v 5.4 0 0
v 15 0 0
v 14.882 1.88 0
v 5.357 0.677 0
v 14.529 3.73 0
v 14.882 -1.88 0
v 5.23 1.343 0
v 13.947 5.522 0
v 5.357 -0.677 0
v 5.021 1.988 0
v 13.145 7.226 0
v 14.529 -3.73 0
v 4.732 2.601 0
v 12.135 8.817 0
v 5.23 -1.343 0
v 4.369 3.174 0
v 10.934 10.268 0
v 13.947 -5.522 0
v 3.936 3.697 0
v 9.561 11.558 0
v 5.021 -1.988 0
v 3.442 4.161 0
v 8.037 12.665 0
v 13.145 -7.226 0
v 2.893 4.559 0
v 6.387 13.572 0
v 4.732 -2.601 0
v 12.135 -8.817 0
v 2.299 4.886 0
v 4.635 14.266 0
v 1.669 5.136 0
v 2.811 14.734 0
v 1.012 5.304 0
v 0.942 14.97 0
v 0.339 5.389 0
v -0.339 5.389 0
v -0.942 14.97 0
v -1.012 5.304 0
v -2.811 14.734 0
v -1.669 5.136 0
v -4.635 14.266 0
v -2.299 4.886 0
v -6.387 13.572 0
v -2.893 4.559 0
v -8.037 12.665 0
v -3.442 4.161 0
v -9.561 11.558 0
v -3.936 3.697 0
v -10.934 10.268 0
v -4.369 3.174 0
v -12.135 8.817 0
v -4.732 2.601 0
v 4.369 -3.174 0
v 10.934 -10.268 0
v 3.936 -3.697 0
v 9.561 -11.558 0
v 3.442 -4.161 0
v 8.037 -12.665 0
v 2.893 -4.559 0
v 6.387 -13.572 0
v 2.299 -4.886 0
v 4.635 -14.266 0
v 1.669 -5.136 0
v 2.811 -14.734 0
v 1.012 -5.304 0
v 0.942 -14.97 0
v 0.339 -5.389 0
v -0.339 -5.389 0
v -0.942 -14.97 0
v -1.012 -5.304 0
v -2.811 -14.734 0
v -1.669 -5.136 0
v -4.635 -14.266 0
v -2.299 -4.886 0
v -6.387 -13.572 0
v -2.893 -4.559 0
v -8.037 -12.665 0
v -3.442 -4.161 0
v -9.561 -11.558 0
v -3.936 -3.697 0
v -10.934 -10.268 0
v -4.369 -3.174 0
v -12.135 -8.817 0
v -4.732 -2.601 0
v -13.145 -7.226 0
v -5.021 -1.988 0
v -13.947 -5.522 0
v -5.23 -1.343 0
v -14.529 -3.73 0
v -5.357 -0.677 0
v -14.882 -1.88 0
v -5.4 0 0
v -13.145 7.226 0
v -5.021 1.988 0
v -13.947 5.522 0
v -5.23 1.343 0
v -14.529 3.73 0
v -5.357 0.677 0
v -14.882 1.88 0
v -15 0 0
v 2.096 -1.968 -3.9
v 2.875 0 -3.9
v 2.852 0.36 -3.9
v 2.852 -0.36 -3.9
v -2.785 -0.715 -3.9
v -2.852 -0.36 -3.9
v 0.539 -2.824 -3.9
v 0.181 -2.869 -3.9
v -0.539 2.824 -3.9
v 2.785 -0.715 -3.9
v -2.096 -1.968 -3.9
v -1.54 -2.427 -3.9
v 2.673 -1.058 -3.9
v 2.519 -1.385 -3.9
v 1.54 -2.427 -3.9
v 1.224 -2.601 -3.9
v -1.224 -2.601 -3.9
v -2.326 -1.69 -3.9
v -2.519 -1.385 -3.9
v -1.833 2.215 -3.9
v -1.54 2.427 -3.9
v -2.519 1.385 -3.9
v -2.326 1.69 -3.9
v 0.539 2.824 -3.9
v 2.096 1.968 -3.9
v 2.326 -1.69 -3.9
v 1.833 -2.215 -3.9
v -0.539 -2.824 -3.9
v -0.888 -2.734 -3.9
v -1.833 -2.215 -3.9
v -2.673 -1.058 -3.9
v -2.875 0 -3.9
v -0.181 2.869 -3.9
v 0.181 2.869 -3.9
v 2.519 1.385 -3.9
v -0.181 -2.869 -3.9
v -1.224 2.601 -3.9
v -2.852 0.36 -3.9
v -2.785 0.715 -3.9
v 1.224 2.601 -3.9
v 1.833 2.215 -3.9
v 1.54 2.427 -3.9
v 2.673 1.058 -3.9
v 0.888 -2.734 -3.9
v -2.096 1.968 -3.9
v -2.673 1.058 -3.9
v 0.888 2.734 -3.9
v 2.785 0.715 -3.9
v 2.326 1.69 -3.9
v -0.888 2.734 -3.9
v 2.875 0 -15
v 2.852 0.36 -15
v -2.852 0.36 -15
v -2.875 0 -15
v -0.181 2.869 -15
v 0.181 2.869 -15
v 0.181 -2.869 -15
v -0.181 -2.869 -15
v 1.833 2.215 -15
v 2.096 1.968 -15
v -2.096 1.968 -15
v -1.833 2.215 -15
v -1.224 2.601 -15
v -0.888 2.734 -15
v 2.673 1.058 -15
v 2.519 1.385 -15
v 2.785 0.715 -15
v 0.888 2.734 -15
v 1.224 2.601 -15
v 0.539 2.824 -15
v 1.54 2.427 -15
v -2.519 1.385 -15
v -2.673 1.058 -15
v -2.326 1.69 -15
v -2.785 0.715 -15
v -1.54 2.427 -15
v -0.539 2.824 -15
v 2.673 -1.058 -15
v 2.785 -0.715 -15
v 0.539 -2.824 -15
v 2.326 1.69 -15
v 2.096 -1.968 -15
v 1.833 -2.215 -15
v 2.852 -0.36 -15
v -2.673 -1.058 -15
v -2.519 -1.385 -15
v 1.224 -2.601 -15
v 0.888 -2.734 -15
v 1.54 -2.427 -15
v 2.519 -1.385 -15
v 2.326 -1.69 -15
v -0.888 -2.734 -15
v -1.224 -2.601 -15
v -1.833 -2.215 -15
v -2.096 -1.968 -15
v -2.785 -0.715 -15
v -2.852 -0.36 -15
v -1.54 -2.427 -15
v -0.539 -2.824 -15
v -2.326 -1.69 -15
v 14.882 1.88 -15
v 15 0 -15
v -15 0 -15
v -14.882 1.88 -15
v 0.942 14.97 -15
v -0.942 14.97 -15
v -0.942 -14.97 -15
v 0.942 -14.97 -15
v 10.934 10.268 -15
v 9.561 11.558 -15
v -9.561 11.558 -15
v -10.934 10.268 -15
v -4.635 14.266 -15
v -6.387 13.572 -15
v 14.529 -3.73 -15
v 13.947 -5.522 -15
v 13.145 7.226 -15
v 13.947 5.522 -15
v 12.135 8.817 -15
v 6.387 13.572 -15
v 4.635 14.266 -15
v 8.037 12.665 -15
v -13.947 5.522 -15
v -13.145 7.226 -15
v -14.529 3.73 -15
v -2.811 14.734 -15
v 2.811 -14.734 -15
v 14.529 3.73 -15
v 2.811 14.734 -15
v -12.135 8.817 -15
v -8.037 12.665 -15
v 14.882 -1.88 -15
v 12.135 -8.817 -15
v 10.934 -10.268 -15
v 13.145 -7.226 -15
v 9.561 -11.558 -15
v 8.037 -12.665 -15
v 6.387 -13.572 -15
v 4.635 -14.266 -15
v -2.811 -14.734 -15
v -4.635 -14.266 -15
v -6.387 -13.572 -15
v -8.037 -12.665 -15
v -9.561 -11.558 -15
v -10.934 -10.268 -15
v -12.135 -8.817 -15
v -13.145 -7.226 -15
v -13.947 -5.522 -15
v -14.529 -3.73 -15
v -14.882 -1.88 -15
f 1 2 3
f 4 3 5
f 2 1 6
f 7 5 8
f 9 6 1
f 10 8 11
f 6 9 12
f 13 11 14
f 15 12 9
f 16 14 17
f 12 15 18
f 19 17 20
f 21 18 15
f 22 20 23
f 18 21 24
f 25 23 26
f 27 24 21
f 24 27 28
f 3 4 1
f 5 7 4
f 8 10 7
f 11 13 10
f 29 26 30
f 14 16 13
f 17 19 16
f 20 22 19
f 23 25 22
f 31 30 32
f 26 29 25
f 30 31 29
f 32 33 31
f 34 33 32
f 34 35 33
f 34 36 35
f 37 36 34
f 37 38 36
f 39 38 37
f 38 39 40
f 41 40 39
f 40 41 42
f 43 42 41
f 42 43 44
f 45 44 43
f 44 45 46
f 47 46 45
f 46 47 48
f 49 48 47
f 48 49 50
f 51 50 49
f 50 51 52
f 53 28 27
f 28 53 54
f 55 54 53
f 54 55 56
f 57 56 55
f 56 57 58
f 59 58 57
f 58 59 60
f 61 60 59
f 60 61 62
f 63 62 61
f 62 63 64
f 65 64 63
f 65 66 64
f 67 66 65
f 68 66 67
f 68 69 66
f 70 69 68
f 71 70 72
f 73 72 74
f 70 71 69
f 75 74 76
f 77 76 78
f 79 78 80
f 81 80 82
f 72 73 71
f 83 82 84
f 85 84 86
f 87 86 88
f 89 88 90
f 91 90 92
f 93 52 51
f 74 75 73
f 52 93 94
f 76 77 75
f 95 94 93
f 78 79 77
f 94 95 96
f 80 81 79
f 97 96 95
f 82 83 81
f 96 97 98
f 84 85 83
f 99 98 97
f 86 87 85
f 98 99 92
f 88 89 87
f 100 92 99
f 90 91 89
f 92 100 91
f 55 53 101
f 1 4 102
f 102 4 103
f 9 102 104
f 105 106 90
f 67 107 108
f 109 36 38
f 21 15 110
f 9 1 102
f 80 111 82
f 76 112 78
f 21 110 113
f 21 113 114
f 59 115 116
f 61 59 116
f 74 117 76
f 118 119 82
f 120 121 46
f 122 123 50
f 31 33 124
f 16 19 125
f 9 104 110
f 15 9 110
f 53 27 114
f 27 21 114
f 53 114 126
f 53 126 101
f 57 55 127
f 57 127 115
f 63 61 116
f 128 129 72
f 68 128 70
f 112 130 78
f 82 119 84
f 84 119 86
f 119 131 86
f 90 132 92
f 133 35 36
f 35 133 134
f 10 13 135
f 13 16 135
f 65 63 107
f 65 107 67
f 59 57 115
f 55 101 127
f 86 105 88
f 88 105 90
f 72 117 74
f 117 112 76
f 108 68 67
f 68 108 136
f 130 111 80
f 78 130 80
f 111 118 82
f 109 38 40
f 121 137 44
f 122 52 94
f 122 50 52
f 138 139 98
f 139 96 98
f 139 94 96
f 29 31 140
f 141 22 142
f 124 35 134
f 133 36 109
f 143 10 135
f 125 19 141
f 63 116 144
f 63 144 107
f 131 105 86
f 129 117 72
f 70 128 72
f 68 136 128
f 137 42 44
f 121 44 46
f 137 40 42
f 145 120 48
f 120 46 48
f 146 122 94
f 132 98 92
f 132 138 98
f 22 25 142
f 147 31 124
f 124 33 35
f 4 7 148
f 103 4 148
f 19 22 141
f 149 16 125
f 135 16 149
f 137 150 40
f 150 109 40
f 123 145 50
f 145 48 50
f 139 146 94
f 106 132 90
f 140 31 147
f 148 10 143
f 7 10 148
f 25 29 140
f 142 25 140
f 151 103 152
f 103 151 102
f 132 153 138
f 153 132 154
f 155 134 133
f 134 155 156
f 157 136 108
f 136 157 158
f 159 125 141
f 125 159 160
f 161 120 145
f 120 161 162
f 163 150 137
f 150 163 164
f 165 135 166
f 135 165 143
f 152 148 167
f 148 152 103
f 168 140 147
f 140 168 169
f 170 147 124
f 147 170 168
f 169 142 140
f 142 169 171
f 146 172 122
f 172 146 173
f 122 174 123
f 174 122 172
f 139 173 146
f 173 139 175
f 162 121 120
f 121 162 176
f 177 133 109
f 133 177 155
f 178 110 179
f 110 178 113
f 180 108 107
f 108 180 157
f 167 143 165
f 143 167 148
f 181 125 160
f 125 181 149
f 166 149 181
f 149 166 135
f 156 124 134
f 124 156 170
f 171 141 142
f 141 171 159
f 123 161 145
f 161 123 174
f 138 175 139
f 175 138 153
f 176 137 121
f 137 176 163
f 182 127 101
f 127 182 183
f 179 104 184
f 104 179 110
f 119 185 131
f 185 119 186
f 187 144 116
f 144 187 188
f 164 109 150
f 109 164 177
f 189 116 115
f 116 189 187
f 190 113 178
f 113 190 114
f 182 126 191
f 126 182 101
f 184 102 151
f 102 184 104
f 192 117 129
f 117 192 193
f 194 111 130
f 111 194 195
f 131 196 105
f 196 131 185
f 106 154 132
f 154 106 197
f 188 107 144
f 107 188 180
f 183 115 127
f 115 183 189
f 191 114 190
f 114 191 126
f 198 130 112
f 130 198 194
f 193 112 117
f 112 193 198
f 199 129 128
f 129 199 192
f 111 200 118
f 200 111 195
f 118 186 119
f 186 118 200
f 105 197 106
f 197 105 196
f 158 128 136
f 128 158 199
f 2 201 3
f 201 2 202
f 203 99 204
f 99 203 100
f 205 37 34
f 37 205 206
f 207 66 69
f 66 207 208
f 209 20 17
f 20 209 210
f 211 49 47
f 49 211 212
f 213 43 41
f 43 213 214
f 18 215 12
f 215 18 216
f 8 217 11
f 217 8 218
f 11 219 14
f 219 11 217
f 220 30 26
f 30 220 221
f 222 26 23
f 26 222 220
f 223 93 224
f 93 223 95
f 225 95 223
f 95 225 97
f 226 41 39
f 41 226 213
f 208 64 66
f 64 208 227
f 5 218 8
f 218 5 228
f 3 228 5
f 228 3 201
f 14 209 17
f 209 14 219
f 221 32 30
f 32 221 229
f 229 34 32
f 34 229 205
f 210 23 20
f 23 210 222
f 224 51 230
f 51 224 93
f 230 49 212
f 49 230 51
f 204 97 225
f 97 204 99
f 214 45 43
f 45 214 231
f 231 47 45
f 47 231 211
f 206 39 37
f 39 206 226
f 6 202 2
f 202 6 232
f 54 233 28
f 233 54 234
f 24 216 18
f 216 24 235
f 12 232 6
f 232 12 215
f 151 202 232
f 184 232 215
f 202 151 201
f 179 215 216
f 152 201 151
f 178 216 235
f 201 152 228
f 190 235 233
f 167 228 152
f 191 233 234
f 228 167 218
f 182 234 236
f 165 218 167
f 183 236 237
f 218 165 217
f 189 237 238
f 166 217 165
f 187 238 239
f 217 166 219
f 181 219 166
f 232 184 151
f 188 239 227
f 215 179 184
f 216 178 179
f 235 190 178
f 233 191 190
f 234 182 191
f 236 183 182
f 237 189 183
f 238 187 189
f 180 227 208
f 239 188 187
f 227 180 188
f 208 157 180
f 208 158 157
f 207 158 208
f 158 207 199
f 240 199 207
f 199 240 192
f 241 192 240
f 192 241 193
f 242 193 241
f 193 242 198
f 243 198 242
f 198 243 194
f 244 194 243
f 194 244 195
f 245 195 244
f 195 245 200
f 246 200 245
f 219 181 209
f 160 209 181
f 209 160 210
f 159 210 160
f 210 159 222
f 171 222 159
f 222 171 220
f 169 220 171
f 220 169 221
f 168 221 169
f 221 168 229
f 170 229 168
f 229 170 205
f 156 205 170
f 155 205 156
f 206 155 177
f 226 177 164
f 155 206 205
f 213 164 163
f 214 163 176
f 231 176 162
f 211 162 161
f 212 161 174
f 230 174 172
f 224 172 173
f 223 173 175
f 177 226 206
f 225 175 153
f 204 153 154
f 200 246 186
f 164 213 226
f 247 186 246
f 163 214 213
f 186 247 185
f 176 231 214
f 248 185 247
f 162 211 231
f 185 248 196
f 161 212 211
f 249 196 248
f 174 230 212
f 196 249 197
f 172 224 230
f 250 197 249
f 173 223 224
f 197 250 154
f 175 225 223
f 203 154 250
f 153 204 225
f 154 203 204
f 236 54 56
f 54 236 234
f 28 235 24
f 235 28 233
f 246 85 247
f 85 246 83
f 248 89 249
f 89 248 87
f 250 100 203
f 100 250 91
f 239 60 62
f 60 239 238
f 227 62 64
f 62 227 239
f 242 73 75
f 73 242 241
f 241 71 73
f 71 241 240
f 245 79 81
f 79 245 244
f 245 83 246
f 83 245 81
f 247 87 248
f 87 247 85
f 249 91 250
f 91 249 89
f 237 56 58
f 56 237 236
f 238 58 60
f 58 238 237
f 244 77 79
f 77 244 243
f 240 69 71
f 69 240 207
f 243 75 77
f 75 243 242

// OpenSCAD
$fn = 50;

difference() {
	union() {
		translate(v = [0, 0, -15.0]) {
			cylinder(h = 15, r = 15.0);
		}
	}
	union() {
		translate(v = [0, 0, 0]) {
			rotate(a = [0, 0, 0]) {
				difference() {
					union() {
						translate(v = [0, 0, -18.0]) {
							cylinder(h = 18, r = 2.6);
						}
						translate(v = [0, 0, -3.9]) {
							cylinder(h = 3.9, r1 = 2.875, r2 = 5.4);
						}
						translate(v = [0, 0, -18.0]) {
							cylinder(h = 18, r = 2.875);
						}
						translate(v = [0, 0, -18.0]) {
							cylinder(h = 18, r = 2.6);
						}
					}
					union();
				}
			}
		}
	}
}
